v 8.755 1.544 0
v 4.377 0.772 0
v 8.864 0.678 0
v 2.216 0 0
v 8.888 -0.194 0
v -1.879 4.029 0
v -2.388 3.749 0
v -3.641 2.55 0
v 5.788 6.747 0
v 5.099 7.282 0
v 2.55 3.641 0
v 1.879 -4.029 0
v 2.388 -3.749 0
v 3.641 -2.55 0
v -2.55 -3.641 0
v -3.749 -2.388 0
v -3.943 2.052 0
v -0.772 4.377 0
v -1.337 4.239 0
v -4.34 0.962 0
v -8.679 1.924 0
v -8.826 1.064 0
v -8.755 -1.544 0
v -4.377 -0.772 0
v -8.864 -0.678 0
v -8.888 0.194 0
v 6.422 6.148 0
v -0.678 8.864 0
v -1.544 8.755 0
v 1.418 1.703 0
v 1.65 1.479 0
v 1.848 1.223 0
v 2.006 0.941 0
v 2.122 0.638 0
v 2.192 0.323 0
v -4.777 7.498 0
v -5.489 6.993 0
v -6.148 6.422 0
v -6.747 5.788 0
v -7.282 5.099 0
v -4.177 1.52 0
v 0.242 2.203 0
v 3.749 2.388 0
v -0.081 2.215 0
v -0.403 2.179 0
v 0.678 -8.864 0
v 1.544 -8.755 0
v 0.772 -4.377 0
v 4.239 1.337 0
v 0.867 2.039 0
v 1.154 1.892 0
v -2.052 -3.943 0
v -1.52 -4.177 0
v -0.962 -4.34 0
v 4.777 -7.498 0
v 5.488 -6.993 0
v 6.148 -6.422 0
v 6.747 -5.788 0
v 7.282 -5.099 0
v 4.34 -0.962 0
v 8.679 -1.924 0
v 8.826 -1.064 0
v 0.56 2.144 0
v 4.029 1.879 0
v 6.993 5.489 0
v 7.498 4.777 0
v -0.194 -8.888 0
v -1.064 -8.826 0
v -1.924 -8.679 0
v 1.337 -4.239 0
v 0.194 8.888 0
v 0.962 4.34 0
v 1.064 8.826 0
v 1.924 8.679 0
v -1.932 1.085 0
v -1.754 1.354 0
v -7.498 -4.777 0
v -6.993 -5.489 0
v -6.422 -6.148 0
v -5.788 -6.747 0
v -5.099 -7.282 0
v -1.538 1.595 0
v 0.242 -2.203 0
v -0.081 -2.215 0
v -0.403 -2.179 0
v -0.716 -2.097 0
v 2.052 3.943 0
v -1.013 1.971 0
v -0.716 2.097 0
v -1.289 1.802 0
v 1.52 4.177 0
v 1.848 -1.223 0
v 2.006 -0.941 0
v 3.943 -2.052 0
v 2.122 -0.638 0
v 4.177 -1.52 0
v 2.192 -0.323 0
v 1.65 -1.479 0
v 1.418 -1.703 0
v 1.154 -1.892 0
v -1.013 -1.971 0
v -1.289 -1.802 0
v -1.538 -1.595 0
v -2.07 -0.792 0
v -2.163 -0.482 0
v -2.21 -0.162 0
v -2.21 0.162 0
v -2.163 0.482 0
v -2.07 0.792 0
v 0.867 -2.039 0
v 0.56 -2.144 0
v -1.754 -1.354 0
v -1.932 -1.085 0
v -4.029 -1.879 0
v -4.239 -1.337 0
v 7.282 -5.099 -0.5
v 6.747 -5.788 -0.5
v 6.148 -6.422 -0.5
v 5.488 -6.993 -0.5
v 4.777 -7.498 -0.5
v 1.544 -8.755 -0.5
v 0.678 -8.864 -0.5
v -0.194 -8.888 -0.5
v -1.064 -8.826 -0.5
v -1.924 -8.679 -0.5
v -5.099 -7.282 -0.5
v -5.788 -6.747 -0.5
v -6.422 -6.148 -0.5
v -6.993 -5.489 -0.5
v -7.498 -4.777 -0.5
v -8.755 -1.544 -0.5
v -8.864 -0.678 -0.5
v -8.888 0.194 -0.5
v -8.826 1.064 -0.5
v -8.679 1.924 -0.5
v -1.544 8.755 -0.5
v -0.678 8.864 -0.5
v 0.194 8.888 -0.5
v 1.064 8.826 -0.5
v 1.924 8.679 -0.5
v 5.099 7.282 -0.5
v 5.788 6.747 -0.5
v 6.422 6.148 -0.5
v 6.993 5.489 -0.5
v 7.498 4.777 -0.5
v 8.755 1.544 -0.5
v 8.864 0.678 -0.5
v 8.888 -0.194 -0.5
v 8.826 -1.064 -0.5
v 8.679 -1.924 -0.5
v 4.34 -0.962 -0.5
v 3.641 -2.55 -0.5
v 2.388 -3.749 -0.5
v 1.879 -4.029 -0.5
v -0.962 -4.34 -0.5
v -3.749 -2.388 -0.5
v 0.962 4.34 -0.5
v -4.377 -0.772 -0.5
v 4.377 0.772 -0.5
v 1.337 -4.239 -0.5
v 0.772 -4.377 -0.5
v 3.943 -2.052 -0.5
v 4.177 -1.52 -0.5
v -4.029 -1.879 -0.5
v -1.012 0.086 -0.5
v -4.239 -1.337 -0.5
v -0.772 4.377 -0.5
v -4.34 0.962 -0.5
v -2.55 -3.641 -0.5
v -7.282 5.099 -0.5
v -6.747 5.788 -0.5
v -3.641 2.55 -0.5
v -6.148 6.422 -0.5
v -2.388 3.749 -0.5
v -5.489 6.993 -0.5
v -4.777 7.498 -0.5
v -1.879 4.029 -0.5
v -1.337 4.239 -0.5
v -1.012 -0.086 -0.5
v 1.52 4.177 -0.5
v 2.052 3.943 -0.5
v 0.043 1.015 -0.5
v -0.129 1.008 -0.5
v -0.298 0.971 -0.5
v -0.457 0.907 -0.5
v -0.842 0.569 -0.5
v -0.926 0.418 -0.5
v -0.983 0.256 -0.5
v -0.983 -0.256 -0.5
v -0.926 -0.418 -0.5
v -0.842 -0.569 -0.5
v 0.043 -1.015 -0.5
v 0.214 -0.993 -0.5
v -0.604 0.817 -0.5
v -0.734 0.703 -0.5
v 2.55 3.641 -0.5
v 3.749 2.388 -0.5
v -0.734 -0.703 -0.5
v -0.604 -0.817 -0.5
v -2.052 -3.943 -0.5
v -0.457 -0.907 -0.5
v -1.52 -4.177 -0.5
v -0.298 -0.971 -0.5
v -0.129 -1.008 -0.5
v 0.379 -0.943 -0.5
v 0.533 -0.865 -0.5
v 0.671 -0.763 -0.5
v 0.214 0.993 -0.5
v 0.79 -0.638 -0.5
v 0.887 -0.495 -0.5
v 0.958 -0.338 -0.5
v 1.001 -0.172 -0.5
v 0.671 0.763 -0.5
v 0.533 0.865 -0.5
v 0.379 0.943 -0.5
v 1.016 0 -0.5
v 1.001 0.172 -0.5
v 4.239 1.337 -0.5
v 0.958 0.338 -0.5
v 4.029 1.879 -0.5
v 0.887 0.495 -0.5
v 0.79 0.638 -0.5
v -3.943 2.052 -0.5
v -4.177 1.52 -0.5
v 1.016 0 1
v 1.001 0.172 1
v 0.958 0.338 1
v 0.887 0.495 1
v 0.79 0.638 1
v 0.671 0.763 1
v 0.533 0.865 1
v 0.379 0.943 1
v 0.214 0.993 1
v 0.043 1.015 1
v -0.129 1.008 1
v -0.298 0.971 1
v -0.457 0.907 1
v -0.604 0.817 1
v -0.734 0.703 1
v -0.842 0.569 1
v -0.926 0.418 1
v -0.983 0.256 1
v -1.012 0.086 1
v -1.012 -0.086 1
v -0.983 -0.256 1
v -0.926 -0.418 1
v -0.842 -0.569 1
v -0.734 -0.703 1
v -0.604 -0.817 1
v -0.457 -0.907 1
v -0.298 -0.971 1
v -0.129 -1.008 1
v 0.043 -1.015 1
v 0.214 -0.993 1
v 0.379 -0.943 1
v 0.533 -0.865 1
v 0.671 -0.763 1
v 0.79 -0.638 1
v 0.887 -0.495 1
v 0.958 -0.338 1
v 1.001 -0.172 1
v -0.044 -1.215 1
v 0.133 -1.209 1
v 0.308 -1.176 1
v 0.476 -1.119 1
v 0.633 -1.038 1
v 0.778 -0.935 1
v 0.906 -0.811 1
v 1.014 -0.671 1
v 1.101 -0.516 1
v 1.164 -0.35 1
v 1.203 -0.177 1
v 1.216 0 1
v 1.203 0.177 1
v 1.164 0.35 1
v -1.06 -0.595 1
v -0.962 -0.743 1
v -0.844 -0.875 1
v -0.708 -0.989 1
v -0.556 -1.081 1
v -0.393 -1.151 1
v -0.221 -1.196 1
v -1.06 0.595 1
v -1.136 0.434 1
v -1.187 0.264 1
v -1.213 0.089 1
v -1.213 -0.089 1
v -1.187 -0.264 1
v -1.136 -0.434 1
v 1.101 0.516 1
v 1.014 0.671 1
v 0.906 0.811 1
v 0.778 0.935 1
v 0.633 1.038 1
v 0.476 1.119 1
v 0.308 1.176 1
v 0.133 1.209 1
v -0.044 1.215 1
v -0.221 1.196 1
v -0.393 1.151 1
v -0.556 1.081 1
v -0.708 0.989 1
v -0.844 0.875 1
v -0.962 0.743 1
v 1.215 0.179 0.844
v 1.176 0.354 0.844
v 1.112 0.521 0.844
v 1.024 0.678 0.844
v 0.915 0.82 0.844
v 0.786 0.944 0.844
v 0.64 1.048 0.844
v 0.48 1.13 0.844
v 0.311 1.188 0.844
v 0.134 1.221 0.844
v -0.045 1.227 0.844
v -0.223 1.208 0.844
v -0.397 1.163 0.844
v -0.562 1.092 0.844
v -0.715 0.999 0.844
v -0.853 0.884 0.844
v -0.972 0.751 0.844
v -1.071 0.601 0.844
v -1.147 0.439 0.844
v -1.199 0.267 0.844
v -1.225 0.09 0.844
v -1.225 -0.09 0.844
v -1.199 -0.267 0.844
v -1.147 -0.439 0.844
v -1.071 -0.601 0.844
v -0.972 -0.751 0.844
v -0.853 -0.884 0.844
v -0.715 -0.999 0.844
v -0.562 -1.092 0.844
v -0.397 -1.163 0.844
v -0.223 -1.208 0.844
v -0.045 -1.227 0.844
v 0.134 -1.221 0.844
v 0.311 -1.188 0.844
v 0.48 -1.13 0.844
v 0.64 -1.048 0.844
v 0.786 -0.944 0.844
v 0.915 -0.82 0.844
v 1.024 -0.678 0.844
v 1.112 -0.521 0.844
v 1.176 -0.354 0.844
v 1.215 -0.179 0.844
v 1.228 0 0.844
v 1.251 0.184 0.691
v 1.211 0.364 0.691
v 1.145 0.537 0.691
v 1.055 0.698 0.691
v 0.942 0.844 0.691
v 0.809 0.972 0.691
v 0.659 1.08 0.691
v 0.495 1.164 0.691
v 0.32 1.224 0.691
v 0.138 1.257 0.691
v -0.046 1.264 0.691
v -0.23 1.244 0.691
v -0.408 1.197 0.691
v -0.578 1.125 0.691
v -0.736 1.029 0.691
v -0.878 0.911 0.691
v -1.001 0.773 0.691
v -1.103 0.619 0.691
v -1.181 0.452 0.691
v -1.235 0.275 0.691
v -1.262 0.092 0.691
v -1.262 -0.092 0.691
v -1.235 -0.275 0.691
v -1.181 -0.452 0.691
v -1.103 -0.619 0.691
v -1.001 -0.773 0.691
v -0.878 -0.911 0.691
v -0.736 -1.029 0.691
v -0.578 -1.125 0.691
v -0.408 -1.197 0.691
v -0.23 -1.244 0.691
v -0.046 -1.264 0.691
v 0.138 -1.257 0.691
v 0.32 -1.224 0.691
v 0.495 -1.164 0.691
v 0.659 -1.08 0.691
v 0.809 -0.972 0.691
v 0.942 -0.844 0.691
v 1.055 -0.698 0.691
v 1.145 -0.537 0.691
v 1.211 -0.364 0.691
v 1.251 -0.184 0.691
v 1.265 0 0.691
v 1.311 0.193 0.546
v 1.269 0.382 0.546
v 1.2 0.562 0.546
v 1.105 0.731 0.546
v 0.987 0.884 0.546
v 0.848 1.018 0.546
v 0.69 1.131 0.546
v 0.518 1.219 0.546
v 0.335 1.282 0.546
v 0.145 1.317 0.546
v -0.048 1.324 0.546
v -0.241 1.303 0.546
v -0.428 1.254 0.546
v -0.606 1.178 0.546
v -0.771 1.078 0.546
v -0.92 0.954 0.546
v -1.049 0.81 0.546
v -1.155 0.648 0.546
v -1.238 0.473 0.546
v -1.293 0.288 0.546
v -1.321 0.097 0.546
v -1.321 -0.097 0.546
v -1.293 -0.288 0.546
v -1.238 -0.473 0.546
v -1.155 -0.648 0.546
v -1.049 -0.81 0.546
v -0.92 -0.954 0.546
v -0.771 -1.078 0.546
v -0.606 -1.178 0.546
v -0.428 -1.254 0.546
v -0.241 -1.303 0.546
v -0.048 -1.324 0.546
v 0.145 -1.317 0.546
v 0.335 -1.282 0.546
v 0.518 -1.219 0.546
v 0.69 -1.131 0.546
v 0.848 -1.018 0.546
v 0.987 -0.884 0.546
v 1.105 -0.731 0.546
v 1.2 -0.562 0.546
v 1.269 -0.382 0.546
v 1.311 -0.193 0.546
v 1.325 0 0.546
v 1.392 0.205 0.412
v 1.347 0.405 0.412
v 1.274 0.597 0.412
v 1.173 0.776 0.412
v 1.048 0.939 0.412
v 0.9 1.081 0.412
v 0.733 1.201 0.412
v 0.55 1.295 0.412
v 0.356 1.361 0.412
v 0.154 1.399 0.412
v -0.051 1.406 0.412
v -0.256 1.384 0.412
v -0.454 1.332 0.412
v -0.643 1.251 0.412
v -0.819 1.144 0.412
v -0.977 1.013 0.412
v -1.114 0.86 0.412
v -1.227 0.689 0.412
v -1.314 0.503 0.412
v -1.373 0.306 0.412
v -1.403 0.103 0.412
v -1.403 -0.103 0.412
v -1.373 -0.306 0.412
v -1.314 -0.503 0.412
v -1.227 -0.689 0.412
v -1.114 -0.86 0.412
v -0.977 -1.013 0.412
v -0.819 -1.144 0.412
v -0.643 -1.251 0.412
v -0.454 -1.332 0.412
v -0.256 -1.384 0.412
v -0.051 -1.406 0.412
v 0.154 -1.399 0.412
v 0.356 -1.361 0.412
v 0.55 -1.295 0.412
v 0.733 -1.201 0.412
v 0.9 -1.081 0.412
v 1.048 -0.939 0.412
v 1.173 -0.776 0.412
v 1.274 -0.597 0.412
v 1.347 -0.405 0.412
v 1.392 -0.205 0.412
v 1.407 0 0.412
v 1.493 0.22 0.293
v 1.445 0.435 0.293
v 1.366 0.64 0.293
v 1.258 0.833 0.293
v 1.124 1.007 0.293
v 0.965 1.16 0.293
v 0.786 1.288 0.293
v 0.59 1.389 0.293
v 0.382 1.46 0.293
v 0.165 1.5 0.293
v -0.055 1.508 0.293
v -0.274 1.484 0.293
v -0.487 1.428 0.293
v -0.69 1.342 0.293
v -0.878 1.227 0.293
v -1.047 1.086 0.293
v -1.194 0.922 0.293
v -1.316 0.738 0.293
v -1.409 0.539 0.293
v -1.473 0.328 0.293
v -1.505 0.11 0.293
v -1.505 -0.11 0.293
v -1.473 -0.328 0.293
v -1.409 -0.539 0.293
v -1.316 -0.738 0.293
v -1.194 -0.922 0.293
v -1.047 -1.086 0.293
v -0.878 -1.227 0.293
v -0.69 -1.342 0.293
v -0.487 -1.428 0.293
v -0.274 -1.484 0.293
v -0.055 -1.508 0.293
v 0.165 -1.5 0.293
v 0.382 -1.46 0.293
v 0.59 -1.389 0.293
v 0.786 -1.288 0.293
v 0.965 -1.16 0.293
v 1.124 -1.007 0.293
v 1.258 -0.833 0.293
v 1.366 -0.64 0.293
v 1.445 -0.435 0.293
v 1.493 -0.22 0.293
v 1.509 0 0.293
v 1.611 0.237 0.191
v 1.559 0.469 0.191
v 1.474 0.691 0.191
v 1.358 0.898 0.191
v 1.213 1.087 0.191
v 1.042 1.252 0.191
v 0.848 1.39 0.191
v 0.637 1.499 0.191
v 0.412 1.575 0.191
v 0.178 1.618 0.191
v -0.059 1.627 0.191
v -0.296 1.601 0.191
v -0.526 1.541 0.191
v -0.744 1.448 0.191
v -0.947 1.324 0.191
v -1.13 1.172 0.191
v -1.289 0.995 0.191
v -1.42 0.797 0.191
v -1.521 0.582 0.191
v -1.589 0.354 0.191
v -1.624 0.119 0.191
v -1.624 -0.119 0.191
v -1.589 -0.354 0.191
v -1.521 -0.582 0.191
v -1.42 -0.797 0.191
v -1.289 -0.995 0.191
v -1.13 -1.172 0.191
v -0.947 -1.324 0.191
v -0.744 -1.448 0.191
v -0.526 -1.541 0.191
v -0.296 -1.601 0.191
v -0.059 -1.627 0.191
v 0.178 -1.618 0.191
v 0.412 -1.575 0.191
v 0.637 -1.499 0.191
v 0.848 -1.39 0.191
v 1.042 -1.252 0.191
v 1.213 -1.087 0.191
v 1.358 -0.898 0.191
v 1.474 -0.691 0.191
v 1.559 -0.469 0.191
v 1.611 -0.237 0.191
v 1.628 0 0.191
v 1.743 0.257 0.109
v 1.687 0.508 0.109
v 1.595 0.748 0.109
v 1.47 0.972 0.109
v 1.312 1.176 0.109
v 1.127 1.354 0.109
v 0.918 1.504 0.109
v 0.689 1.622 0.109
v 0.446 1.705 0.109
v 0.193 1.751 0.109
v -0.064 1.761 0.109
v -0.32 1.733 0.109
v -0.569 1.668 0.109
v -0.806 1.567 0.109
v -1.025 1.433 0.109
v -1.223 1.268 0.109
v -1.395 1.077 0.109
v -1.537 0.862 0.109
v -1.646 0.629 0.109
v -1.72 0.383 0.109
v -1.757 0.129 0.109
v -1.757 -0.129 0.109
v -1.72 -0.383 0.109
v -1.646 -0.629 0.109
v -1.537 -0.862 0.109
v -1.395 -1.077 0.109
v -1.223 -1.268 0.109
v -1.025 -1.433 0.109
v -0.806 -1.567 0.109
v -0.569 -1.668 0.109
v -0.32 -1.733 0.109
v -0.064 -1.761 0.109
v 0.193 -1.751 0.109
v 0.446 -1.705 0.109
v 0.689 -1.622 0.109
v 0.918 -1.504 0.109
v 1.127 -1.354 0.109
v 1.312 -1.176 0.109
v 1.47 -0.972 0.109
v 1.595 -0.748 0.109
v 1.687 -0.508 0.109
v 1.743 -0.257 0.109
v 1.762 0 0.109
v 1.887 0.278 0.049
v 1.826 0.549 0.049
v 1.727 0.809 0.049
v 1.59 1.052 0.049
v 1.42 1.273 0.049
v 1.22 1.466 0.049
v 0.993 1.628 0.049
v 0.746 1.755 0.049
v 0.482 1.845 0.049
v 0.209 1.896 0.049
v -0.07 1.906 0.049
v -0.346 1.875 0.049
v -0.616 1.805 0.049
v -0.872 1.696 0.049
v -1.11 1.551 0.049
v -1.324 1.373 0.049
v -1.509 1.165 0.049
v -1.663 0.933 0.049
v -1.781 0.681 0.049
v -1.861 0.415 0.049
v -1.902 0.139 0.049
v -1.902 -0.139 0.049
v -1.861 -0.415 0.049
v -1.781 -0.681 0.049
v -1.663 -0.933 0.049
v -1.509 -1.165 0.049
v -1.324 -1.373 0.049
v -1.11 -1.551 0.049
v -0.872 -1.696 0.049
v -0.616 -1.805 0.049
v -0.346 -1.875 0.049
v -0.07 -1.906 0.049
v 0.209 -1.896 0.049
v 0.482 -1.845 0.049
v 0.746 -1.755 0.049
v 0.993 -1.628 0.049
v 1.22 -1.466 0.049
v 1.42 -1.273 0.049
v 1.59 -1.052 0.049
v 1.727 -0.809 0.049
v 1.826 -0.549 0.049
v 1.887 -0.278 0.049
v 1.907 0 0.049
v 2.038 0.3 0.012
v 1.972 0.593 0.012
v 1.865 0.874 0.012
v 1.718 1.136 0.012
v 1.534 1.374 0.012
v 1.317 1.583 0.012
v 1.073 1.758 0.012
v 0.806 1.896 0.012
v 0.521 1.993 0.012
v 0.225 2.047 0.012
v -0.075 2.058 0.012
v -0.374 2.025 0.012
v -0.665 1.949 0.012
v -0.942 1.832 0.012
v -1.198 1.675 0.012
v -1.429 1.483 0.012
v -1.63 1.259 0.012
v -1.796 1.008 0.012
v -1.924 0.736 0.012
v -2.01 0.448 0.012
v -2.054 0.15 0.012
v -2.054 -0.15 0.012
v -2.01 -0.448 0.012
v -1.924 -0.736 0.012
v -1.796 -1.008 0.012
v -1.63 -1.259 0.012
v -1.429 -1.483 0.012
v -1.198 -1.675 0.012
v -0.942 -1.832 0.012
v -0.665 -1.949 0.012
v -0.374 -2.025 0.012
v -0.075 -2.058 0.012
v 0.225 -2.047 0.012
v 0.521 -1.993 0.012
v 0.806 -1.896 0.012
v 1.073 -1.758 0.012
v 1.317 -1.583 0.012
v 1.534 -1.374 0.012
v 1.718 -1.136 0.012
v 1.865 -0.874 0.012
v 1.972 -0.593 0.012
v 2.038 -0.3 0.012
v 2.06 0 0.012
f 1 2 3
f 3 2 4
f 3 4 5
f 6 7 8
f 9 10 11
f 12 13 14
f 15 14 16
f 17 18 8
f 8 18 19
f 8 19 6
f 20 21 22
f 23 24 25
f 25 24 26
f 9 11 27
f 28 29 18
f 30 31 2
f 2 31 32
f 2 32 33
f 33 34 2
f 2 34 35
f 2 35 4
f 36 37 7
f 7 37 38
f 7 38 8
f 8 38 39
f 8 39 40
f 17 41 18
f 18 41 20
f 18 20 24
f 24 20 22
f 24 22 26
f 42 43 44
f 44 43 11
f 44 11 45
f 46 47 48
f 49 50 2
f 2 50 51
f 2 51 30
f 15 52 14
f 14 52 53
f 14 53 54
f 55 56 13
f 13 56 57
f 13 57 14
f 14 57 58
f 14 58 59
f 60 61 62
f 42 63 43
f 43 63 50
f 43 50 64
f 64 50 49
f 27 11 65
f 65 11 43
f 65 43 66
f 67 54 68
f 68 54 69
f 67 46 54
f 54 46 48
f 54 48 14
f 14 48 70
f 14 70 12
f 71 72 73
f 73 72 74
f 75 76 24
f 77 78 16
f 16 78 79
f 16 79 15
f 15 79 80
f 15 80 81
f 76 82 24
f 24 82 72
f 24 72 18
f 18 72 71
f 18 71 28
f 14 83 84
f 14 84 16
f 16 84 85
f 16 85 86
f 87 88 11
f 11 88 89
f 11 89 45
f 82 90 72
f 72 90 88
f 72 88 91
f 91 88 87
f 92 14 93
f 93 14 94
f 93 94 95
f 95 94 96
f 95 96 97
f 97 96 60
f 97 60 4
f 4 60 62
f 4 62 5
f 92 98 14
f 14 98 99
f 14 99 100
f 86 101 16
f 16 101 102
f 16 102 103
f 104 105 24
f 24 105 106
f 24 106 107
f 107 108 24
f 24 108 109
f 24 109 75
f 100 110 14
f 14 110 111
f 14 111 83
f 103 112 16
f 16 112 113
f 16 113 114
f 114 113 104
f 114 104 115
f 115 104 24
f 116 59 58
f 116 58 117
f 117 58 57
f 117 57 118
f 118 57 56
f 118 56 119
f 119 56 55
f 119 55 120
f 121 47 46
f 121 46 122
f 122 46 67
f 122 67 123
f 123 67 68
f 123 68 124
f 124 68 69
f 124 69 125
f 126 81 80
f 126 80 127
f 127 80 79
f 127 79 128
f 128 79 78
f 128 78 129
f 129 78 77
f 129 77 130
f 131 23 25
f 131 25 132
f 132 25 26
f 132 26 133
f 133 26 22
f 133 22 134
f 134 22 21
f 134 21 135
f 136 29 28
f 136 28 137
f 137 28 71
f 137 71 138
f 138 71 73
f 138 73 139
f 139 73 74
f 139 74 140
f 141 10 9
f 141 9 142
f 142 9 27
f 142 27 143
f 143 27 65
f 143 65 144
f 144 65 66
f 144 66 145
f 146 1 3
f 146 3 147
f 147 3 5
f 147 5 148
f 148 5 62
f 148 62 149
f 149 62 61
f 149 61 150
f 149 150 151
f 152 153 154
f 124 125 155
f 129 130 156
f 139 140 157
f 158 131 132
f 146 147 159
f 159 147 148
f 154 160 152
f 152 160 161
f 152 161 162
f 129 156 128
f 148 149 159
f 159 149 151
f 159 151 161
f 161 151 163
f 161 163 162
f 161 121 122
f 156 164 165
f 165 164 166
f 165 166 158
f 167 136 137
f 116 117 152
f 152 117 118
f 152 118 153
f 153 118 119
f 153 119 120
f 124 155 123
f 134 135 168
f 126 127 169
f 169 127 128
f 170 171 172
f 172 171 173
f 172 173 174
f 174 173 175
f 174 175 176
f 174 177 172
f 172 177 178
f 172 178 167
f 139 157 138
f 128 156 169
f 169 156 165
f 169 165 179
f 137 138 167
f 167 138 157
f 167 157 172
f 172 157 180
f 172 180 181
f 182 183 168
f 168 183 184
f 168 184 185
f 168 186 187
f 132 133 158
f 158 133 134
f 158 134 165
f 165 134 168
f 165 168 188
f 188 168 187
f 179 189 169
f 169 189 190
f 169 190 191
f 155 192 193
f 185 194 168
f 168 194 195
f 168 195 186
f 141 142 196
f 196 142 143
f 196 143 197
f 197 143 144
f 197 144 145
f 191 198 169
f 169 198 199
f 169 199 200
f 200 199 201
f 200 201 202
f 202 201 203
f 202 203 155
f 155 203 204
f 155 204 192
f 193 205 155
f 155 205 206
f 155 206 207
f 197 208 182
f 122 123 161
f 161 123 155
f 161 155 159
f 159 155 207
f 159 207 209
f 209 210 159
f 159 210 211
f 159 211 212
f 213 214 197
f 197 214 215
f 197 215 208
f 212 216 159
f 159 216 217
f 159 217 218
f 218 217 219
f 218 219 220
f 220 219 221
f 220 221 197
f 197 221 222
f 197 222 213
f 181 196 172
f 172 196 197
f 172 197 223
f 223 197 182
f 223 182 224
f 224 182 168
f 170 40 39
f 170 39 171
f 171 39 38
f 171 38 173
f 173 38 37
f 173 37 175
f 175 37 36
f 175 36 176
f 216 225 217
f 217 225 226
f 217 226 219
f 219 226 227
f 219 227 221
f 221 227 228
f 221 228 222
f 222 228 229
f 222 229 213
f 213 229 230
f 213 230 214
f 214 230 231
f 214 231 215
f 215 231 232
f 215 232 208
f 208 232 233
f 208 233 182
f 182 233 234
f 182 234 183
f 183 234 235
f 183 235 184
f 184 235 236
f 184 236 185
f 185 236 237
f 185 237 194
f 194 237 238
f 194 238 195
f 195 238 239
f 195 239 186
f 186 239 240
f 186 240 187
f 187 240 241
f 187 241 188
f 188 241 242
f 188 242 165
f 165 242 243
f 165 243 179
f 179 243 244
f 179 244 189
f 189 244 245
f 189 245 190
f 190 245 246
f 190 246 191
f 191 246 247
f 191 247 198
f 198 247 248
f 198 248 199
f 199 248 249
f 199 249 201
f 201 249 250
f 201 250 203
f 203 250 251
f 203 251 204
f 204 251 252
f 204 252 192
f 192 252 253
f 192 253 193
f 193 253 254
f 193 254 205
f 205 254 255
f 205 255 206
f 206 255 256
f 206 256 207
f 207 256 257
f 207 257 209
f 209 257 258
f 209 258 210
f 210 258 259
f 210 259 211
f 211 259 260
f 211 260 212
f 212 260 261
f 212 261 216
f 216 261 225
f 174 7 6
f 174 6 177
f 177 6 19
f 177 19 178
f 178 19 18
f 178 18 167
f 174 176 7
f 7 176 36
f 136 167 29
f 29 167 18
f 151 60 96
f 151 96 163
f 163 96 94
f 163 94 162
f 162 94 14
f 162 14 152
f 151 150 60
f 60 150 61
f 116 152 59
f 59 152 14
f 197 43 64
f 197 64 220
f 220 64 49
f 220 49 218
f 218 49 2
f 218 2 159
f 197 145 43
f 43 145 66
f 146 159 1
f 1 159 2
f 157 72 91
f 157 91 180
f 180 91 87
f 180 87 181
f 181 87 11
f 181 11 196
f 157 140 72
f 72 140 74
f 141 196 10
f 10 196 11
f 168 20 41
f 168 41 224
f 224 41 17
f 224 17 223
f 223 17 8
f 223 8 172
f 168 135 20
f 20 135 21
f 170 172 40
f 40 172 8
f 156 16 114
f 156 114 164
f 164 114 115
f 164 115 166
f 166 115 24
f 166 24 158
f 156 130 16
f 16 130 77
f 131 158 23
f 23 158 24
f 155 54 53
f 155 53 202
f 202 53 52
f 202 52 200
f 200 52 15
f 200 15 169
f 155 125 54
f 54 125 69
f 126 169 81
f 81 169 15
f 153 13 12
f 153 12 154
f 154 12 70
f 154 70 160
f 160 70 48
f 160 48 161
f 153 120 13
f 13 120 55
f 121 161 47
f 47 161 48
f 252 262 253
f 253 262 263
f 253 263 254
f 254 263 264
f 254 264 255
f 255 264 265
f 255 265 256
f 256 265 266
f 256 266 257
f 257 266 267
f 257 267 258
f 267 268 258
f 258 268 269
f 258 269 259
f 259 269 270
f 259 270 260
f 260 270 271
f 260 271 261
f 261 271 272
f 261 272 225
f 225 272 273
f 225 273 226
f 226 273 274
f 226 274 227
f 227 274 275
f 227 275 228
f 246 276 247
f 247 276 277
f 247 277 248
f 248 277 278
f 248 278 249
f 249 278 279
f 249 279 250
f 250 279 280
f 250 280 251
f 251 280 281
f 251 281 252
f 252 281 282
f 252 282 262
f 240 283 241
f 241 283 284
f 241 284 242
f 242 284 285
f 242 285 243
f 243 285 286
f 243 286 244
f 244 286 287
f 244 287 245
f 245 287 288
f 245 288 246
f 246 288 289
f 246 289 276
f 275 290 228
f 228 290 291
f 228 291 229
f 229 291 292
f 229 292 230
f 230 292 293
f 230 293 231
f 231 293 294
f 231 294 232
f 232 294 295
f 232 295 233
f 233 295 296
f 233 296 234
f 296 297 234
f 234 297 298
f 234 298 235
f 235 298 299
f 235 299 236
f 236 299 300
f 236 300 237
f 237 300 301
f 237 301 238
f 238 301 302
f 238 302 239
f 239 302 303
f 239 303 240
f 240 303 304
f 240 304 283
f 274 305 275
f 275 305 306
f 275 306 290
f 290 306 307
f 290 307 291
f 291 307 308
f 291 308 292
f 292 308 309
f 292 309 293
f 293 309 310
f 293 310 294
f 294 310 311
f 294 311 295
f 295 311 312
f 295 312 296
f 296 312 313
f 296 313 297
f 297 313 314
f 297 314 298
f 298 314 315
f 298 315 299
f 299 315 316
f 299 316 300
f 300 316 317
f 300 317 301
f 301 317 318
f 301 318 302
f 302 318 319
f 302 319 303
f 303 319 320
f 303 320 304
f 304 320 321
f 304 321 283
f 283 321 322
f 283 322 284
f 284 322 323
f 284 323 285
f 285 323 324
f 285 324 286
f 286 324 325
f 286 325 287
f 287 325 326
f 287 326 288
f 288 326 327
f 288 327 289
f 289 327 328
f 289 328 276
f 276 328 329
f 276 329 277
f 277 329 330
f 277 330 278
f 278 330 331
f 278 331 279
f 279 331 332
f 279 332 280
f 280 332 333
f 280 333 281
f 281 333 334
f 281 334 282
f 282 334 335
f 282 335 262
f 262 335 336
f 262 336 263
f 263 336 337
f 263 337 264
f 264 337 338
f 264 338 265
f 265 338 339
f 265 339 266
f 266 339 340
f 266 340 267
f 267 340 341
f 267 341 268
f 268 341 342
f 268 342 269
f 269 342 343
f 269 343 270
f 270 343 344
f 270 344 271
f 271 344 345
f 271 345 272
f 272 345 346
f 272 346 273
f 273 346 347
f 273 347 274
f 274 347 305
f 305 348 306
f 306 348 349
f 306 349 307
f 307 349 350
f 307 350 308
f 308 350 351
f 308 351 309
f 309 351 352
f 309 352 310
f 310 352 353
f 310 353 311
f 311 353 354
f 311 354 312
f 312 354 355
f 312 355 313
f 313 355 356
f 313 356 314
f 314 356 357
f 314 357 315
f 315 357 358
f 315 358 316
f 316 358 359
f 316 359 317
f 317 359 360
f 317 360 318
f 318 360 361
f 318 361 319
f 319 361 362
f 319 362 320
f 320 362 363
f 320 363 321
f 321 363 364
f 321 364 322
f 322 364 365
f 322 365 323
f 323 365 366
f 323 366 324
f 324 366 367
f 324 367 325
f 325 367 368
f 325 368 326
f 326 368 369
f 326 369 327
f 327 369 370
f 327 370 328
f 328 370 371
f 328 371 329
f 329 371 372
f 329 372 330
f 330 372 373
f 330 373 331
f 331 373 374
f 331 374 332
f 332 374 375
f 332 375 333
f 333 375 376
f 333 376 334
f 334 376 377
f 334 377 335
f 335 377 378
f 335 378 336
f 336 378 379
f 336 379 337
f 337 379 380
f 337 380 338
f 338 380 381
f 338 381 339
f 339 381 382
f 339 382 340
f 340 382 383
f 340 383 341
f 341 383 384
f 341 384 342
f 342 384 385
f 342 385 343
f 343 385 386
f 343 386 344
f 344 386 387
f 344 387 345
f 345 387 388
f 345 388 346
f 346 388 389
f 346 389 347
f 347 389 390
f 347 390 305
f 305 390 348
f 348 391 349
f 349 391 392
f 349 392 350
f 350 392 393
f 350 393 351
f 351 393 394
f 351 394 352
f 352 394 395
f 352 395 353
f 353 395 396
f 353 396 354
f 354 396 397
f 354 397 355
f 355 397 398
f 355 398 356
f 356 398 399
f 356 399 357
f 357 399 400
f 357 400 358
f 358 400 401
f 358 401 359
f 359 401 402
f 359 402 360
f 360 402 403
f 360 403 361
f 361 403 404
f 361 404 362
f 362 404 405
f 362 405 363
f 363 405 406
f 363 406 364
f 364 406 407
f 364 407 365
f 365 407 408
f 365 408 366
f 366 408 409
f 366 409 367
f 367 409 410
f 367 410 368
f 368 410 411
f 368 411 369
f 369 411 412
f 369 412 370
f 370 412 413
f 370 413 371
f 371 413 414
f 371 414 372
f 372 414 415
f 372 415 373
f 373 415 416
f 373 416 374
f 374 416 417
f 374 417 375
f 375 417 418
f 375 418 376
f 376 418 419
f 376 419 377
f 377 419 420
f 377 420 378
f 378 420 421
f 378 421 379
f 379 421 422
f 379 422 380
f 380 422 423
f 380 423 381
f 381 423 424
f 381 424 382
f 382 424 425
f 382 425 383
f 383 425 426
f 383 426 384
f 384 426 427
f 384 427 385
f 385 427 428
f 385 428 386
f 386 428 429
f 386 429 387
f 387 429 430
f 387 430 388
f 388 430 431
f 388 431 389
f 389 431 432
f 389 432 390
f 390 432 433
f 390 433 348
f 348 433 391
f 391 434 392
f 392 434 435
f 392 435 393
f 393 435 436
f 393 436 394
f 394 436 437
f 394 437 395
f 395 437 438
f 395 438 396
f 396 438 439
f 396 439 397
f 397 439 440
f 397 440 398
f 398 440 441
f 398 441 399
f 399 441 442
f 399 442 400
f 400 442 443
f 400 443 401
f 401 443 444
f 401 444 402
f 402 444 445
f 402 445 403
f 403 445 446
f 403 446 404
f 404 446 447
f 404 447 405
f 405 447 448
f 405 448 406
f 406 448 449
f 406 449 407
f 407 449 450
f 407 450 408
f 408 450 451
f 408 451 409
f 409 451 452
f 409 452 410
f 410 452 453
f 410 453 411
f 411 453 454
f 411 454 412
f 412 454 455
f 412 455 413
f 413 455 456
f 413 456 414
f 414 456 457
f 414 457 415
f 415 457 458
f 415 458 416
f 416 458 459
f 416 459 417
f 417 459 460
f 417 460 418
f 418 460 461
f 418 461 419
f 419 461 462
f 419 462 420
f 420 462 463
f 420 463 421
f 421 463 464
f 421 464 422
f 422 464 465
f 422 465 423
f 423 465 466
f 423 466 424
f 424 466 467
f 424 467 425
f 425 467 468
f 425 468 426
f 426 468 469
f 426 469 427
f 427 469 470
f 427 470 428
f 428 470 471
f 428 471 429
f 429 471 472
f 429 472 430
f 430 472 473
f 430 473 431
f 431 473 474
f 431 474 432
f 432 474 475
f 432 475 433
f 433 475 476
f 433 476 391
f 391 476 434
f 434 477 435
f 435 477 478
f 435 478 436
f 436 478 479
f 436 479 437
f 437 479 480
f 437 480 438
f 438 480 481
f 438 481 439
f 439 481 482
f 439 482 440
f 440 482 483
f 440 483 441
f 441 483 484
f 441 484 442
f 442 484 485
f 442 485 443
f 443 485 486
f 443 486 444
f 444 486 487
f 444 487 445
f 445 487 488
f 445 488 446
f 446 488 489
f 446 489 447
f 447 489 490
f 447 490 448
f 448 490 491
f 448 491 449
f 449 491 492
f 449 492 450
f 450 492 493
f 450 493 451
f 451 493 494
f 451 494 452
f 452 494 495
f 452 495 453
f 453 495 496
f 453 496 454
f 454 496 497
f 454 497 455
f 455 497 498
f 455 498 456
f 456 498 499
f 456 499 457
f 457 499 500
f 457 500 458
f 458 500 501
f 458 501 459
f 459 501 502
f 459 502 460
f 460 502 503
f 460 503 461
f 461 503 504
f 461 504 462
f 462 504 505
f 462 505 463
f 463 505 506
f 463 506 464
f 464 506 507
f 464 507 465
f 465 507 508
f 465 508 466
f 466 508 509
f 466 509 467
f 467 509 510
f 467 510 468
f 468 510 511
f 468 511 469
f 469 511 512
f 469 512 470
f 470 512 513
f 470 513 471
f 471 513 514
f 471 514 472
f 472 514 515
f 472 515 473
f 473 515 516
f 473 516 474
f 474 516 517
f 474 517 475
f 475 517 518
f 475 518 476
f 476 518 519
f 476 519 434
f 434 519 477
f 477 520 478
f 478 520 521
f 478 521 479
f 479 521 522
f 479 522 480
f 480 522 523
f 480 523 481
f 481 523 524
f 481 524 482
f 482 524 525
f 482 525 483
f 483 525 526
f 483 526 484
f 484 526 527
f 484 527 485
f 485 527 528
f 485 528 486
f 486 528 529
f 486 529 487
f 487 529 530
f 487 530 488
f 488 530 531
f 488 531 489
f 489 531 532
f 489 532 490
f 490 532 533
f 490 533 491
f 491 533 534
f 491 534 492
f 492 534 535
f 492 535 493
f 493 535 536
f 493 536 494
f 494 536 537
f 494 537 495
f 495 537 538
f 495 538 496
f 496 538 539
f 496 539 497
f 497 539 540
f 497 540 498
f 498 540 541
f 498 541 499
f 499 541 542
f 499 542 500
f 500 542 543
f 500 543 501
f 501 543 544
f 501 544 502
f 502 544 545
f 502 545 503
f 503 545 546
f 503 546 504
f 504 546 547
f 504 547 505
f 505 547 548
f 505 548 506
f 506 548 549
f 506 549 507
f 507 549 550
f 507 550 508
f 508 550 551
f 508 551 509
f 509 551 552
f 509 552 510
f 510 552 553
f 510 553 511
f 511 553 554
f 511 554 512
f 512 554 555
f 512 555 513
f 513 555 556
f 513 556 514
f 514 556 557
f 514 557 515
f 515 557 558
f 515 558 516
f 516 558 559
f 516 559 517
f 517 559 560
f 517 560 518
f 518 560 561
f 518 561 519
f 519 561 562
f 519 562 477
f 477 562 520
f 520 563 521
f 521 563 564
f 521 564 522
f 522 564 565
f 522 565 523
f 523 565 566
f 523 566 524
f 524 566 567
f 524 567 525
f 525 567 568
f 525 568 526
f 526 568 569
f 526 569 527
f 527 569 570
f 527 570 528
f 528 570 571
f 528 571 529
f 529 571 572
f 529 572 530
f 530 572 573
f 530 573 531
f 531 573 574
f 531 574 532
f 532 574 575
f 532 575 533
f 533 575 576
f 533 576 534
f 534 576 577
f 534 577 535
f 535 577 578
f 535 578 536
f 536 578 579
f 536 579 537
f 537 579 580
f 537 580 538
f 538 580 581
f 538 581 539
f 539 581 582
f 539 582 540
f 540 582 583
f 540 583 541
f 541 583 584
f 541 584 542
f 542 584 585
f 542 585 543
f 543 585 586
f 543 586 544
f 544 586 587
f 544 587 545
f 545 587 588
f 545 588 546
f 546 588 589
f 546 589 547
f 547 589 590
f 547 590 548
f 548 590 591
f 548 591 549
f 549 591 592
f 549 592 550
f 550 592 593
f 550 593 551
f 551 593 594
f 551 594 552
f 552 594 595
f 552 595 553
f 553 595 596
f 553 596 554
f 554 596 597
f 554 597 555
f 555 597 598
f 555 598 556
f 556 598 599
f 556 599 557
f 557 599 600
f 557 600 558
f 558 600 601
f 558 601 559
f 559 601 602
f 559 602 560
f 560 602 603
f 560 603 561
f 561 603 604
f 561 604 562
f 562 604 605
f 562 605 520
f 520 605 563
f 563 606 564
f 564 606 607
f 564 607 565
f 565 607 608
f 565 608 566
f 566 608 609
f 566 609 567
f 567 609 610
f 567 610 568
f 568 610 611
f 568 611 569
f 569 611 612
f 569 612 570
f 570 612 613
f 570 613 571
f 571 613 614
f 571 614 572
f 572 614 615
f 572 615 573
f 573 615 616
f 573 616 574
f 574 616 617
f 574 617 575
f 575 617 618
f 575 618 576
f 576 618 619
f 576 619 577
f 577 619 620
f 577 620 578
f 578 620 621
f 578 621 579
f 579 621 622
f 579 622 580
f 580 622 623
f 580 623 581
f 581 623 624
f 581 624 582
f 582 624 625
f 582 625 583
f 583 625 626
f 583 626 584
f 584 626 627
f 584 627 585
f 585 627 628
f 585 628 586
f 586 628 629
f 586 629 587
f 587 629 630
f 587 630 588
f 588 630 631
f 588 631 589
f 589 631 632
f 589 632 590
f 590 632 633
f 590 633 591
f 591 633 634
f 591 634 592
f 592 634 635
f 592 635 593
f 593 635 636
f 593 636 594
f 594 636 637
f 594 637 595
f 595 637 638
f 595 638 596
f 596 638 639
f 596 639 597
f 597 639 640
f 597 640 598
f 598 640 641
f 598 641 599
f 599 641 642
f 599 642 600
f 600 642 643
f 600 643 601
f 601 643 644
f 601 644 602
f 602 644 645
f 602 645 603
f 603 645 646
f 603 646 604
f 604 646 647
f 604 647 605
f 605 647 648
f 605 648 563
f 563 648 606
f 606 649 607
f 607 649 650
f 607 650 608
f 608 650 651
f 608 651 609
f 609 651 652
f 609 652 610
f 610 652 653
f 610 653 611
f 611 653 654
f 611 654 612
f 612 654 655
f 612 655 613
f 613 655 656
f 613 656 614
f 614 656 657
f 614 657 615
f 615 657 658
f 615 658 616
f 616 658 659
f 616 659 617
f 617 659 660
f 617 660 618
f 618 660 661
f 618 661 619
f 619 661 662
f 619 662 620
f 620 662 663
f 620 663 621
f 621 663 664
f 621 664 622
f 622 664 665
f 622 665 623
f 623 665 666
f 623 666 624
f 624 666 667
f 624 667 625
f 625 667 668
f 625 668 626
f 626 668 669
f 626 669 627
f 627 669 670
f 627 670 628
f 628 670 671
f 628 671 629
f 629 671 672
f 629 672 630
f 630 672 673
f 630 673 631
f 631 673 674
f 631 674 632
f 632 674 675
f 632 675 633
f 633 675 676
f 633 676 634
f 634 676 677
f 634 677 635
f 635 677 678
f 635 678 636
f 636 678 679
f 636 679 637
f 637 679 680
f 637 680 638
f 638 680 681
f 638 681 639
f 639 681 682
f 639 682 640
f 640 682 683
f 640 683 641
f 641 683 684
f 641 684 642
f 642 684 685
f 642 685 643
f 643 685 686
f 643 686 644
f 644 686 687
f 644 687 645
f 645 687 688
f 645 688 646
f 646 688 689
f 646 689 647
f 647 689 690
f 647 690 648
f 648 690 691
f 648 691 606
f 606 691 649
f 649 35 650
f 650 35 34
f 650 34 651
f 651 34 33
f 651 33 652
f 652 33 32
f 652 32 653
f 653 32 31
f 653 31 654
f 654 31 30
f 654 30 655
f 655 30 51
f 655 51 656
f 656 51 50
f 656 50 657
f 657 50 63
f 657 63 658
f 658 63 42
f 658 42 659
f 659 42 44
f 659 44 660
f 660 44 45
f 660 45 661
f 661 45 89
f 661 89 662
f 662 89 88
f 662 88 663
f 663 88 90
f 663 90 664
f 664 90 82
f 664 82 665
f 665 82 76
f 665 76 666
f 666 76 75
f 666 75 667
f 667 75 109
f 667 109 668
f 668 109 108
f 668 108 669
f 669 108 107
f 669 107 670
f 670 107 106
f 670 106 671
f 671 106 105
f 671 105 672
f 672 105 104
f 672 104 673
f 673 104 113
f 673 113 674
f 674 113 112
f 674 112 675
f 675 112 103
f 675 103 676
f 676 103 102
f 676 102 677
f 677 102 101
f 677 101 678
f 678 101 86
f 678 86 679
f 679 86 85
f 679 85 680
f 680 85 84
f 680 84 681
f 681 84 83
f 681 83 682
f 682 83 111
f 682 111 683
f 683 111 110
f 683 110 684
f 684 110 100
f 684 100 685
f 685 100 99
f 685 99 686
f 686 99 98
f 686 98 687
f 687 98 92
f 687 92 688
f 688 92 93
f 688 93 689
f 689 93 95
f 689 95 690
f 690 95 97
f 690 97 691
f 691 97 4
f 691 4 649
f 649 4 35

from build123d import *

# Parameters (mm, degrees)
SKETCH1_R           = 8.89
SKETCH1_R_2         = 1.016
BOSS_EXTRUDE1_DEPTH = 0.5
CUT_EXTRUDE1_DEPTH  = 0.5
BOSS_EXTRUDE2_START = 1
SKETCH3_R           = 1.216
SKETCH3_R_2         = 1.016
BOSS_EXTRUDE2_DEPTH = 1
FILLET1_R           = 1


with BuildPart() as part:
    # Sketch1 → Boss-Extrude1 (new body)
    with BuildSketch(Plane.XY):
        Circle(SKETCH1_R)
        Circle(SKETCH1_R_2, mode=Mode.SUBTRACT)
    extrude(amount=-BOSS_EXTRUDE1_DEPTH)

    # Sketch2 → Cut-Extrude1 (cut)
    with BuildSketch(Plane.XY):
        with BuildLine():
            ThreePointArc((-2.388296759, 3.748874977), (-1.61103708, 4.142774979), (-0.77186615, 4.377470462))
            Line((-0.77186615, 4.377470462), (-1.543732299, 8.754940924))
            ThreePointArc((-1.543732299, 8.754940924), (-3.22207416, 8.285549958), (-4.776593518, 7.497749953))
            Line((-4.776593518, 7.497749953), (-2.388296759, 3.748874977))
        make_face()
        with BuildLine():
            ThreePointArc((5.099094519, 7.282261674), (3.580418073, 8.137119049), (1.924148168, 8.679271503))
            Line((1.924148168, 8.679271503), (0.962074084, 4.339635752))
            ThreePointArc((0.962074084, 4.339635752), (1.790209036, 4.068559525), (2.54954726, 3.641130837))
            Line((2.54954726, 3.641130837), (5.099094519, 7.282261674))
        make_face()
        with BuildLine():
            ThreePointArc((8.754940924, 1.543732299), (8.285549958, 3.22207416), (7.497749953, 4.776593518))
            Line((7.497749953, 4.776593518), (3.748874977, 2.388296759))
            ThreePointArc((3.748874977, 2.388296759), (4.142774979, 1.61103708), (4.377470462, 0.77186615))
            Line((4.377470462, 0.77186615), (8.754940924, 1.543732299))
        make_face()
        with BuildLine():
            ThreePointArc((7.282261674, -5.099094519), (8.137119049, -3.580418073), (8.679271503, -1.924148168))
            Line((8.679271503, -1.924148168), (4.339635752, -0.962074084))
            ThreePointArc((4.339635752, -0.962074084), (4.068559525, -1.790209036), (3.641130837, -2.54954726))
            Line((3.641130837, -2.54954726), (7.282261674, -5.099094519))
        make_face()
        with BuildLine():
            ThreePointArc((1.543732299, -8.754940924), (3.22207416, -8.285549958), (4.776593518, -7.497749953))
            Line((4.776593518, -7.497749953), (2.388296759, -3.748874977))
            ThreePointArc((2.388296759, -3.748874977), (1.61103708, -4.142774979), (0.77186615, -4.377470462))
            Line((0.77186615, -4.377470462), (1.543732299, -8.754940924))
        make_face()
        with BuildLine():
            Line((-2.54954726, -3.641130837), (-5.099094519, -7.282261674))
            ThreePointArc((-5.099094519, -7.282261674), (-3.580418073, -8.137119049), (-1.924148168, -8.679271503))
            Line((-1.924148168, -8.679271503), (-0.962074084, -4.339635752))
            ThreePointArc((-0.962074084, -4.339635752), (-1.790209036, -4.068559525), (-2.54954726, -3.641130837))
        make_face()
        with BuildLine():
            Line((-4.377470462, -0.77186615), (-8.754940924, -1.543732299))
            ThreePointArc((-8.754940924, -1.543732299), (-8.285549958, -3.22207416), (-7.497749953, -4.776593518))
            Line((-7.497749953, -4.776593518), (-3.748874977, -2.388296759))
            ThreePointArc((-3.748874977, -2.388296759), (-4.142774979, -1.61103708), (-4.377470462, -0.77186615))
        make_face()
        with BuildLine():
            Line((-3.641130837, 2.54954726), (-7.282261674, 5.099094519))
            ThreePointArc((-7.282261674, 5.099094519), (-8.137119049, 3.580418073), (-8.679271503, 1.924148168))
            Line((-8.679271503, 1.924148168), (-4.339635752, 0.962074084))
            ThreePointArc((-4.339635752, 0.962074084), (-4.068559525, 1.790209036), (-3.641130837, 2.54954726))
        make_face()
    extrude(amount=-CUT_EXTRUDE1_DEPTH, mode=Mode.SUBTRACT)

    # Sketch3 → Boss-Extrude2 (add)
    with BuildSketch(Plane.XY.offset(BOSS_EXTRUDE2_START)):
        Circle(SKETCH3_R)
        Circle(SKETCH3_R_2, mode=Mode.SUBTRACT)
    extrude(amount=-BOSS_EXTRUDE2_DEPTH)

    # Fillet1
    fillet1_edges = [part.edges().sort_by_distance(p)[0] for p in [
        (-1.216, 0, 0),
    ]]
    fillet(fillet1_edges, radius=FILLET1_R - 0.0001)  # a hair under: the kernel refuses the full size


solid = part.part
